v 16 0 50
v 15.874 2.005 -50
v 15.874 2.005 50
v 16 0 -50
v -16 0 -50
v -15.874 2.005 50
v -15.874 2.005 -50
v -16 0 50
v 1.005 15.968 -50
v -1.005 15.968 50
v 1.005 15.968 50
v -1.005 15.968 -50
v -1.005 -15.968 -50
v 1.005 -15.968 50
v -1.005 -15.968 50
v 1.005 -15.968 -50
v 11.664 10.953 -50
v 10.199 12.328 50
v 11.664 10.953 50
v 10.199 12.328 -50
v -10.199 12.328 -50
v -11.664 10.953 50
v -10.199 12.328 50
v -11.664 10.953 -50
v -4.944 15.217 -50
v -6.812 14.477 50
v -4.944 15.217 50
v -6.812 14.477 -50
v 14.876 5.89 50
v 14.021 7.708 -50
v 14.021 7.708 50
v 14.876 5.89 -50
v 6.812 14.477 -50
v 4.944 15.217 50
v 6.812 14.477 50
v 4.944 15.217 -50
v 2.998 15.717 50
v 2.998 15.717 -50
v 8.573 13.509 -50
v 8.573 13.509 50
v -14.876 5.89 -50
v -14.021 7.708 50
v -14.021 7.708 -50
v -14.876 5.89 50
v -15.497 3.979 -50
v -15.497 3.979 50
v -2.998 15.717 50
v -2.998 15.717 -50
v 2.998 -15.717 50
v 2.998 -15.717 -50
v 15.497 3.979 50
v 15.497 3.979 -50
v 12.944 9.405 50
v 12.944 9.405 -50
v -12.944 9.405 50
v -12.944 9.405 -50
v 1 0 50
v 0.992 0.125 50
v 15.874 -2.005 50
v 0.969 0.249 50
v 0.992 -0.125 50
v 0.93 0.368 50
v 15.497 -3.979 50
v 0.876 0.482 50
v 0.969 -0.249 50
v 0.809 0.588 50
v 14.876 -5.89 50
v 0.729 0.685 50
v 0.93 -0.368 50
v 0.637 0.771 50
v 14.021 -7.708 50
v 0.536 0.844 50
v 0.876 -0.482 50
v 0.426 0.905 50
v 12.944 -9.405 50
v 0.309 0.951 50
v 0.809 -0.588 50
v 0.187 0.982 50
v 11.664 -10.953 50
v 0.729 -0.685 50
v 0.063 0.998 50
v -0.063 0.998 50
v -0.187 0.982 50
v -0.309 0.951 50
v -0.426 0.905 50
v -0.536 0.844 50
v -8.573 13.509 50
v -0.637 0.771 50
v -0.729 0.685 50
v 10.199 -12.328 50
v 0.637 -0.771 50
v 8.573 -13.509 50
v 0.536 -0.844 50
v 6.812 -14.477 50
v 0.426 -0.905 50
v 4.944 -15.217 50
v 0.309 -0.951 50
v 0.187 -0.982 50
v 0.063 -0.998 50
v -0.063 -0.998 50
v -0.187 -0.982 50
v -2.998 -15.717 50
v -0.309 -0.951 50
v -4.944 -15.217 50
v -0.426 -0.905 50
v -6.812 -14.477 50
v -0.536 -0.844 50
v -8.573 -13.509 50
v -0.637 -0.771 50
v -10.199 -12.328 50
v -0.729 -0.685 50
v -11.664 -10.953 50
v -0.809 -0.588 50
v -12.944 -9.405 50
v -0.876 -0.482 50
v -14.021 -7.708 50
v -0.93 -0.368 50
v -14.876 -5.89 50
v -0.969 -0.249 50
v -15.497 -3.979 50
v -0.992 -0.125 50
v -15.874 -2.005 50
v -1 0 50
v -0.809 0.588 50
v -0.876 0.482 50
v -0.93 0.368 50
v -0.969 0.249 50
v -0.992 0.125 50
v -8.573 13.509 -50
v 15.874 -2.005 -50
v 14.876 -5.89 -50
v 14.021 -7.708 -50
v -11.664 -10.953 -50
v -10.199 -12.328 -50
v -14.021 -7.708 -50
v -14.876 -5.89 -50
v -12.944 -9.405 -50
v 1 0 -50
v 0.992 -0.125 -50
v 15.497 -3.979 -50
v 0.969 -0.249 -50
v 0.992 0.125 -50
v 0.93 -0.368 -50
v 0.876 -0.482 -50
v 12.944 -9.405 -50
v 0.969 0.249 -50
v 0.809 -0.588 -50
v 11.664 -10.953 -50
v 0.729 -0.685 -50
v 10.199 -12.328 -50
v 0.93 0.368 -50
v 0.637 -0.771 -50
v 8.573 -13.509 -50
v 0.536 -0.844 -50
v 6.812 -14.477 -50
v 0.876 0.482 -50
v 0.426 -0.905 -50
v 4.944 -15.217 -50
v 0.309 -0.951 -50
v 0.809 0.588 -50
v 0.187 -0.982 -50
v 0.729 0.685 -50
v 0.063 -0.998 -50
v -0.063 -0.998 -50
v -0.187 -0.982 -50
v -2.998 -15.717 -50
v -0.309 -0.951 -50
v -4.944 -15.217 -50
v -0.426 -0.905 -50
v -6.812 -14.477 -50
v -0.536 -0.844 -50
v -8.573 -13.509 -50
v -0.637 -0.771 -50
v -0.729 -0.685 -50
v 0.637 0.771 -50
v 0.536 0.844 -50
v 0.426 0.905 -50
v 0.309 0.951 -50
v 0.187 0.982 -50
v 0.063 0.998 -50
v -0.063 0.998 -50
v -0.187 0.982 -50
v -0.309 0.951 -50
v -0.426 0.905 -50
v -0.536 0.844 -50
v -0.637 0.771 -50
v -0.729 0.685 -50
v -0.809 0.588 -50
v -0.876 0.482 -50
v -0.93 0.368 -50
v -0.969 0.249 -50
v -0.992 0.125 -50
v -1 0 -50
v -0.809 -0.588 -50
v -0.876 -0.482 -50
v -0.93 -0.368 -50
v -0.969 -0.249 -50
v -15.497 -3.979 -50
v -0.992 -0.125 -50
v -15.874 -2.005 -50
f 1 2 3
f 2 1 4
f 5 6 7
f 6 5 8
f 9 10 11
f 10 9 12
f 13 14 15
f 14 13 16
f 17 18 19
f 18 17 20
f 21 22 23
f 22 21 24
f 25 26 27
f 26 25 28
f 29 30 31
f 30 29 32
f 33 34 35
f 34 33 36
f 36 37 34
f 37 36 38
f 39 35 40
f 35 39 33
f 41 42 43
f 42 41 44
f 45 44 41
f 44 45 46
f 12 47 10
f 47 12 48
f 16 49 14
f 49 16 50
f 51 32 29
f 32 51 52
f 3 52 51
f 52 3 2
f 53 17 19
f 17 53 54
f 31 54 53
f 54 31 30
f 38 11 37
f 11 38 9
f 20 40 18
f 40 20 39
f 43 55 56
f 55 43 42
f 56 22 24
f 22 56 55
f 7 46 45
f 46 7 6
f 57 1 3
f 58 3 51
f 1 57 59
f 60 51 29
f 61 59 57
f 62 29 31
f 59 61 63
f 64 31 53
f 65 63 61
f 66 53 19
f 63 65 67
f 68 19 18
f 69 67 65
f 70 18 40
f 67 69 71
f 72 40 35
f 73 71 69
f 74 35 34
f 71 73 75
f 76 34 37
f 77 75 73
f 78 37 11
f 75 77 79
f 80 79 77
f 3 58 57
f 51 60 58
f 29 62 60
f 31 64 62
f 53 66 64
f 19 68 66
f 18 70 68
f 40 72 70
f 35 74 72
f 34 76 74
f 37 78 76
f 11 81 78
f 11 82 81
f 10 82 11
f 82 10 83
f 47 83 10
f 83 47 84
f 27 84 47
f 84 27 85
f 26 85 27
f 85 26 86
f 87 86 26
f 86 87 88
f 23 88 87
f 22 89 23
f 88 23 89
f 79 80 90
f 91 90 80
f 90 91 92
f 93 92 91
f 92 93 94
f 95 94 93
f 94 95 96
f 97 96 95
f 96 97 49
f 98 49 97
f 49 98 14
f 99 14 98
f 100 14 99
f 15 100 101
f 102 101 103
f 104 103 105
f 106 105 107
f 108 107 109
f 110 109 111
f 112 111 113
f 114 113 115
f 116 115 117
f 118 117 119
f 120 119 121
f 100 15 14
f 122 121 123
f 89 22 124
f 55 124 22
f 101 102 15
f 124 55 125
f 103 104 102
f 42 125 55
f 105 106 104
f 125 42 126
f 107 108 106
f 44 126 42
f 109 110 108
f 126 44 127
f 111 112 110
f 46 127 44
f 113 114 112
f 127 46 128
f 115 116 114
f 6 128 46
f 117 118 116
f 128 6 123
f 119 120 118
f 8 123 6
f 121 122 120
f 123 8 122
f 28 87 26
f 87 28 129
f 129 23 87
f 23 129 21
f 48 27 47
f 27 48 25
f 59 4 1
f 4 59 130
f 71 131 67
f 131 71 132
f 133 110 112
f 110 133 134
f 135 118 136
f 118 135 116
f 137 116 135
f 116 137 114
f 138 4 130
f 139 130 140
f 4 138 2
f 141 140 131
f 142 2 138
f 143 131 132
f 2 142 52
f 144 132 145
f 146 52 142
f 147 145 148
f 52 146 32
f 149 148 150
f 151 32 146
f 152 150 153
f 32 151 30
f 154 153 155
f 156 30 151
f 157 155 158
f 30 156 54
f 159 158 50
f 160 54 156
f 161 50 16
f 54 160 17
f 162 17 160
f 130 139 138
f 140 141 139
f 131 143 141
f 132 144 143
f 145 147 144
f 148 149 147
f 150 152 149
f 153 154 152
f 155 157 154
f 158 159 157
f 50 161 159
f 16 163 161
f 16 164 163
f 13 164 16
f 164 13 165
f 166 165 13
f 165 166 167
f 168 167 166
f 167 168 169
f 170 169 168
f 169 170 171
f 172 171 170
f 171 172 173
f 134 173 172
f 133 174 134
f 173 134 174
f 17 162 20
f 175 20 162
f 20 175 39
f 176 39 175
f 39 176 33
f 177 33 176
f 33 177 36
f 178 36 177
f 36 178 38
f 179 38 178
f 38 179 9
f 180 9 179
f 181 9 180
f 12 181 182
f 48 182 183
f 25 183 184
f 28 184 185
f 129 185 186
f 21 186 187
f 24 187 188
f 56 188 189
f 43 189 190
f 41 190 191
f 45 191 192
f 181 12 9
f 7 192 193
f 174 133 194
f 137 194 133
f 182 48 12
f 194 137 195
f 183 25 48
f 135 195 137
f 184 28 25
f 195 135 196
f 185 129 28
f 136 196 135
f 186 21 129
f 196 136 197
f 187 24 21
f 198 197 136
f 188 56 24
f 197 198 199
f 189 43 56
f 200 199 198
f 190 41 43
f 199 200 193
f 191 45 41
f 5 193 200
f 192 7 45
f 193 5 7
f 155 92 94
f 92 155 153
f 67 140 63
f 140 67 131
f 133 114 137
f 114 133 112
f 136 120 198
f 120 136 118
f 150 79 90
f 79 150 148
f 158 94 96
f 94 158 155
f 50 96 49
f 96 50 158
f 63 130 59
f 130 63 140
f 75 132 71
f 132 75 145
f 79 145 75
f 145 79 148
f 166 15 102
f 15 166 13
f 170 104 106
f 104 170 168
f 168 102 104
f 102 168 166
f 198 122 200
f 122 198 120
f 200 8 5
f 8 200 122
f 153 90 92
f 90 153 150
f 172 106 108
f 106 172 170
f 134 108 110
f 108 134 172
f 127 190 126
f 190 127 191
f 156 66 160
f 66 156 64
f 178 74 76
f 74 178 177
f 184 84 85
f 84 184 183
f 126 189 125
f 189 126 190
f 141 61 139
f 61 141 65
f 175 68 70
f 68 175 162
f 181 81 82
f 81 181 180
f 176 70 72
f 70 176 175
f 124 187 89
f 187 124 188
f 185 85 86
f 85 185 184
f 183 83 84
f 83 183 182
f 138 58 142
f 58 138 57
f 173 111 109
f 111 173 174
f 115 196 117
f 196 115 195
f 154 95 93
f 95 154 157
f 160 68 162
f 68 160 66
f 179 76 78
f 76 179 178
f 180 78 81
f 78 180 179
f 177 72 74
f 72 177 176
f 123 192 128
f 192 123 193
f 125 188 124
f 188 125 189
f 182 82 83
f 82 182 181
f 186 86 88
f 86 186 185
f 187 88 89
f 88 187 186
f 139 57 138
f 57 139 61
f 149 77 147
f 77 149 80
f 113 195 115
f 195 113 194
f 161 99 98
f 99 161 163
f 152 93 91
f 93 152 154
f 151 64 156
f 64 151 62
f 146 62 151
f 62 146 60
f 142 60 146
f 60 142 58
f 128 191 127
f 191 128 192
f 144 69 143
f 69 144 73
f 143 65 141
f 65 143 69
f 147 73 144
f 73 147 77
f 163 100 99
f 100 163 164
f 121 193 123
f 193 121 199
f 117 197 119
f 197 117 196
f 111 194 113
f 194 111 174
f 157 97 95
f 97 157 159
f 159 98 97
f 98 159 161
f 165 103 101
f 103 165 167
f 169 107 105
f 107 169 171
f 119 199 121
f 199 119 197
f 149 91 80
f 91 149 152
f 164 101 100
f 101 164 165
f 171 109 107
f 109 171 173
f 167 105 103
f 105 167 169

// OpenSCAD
$fn = 50;


difference() {
	union() {
		translate(v = [0, 0, -50.0000000000]) {
			cylinder(h = 100, r = 16.0000000000);
		}
	}
	union() {
		translate(v = [0, 0, -100.0000000000]) {
			cylinder(h = 200, r = 1.0000000000);
		}
	}
}
